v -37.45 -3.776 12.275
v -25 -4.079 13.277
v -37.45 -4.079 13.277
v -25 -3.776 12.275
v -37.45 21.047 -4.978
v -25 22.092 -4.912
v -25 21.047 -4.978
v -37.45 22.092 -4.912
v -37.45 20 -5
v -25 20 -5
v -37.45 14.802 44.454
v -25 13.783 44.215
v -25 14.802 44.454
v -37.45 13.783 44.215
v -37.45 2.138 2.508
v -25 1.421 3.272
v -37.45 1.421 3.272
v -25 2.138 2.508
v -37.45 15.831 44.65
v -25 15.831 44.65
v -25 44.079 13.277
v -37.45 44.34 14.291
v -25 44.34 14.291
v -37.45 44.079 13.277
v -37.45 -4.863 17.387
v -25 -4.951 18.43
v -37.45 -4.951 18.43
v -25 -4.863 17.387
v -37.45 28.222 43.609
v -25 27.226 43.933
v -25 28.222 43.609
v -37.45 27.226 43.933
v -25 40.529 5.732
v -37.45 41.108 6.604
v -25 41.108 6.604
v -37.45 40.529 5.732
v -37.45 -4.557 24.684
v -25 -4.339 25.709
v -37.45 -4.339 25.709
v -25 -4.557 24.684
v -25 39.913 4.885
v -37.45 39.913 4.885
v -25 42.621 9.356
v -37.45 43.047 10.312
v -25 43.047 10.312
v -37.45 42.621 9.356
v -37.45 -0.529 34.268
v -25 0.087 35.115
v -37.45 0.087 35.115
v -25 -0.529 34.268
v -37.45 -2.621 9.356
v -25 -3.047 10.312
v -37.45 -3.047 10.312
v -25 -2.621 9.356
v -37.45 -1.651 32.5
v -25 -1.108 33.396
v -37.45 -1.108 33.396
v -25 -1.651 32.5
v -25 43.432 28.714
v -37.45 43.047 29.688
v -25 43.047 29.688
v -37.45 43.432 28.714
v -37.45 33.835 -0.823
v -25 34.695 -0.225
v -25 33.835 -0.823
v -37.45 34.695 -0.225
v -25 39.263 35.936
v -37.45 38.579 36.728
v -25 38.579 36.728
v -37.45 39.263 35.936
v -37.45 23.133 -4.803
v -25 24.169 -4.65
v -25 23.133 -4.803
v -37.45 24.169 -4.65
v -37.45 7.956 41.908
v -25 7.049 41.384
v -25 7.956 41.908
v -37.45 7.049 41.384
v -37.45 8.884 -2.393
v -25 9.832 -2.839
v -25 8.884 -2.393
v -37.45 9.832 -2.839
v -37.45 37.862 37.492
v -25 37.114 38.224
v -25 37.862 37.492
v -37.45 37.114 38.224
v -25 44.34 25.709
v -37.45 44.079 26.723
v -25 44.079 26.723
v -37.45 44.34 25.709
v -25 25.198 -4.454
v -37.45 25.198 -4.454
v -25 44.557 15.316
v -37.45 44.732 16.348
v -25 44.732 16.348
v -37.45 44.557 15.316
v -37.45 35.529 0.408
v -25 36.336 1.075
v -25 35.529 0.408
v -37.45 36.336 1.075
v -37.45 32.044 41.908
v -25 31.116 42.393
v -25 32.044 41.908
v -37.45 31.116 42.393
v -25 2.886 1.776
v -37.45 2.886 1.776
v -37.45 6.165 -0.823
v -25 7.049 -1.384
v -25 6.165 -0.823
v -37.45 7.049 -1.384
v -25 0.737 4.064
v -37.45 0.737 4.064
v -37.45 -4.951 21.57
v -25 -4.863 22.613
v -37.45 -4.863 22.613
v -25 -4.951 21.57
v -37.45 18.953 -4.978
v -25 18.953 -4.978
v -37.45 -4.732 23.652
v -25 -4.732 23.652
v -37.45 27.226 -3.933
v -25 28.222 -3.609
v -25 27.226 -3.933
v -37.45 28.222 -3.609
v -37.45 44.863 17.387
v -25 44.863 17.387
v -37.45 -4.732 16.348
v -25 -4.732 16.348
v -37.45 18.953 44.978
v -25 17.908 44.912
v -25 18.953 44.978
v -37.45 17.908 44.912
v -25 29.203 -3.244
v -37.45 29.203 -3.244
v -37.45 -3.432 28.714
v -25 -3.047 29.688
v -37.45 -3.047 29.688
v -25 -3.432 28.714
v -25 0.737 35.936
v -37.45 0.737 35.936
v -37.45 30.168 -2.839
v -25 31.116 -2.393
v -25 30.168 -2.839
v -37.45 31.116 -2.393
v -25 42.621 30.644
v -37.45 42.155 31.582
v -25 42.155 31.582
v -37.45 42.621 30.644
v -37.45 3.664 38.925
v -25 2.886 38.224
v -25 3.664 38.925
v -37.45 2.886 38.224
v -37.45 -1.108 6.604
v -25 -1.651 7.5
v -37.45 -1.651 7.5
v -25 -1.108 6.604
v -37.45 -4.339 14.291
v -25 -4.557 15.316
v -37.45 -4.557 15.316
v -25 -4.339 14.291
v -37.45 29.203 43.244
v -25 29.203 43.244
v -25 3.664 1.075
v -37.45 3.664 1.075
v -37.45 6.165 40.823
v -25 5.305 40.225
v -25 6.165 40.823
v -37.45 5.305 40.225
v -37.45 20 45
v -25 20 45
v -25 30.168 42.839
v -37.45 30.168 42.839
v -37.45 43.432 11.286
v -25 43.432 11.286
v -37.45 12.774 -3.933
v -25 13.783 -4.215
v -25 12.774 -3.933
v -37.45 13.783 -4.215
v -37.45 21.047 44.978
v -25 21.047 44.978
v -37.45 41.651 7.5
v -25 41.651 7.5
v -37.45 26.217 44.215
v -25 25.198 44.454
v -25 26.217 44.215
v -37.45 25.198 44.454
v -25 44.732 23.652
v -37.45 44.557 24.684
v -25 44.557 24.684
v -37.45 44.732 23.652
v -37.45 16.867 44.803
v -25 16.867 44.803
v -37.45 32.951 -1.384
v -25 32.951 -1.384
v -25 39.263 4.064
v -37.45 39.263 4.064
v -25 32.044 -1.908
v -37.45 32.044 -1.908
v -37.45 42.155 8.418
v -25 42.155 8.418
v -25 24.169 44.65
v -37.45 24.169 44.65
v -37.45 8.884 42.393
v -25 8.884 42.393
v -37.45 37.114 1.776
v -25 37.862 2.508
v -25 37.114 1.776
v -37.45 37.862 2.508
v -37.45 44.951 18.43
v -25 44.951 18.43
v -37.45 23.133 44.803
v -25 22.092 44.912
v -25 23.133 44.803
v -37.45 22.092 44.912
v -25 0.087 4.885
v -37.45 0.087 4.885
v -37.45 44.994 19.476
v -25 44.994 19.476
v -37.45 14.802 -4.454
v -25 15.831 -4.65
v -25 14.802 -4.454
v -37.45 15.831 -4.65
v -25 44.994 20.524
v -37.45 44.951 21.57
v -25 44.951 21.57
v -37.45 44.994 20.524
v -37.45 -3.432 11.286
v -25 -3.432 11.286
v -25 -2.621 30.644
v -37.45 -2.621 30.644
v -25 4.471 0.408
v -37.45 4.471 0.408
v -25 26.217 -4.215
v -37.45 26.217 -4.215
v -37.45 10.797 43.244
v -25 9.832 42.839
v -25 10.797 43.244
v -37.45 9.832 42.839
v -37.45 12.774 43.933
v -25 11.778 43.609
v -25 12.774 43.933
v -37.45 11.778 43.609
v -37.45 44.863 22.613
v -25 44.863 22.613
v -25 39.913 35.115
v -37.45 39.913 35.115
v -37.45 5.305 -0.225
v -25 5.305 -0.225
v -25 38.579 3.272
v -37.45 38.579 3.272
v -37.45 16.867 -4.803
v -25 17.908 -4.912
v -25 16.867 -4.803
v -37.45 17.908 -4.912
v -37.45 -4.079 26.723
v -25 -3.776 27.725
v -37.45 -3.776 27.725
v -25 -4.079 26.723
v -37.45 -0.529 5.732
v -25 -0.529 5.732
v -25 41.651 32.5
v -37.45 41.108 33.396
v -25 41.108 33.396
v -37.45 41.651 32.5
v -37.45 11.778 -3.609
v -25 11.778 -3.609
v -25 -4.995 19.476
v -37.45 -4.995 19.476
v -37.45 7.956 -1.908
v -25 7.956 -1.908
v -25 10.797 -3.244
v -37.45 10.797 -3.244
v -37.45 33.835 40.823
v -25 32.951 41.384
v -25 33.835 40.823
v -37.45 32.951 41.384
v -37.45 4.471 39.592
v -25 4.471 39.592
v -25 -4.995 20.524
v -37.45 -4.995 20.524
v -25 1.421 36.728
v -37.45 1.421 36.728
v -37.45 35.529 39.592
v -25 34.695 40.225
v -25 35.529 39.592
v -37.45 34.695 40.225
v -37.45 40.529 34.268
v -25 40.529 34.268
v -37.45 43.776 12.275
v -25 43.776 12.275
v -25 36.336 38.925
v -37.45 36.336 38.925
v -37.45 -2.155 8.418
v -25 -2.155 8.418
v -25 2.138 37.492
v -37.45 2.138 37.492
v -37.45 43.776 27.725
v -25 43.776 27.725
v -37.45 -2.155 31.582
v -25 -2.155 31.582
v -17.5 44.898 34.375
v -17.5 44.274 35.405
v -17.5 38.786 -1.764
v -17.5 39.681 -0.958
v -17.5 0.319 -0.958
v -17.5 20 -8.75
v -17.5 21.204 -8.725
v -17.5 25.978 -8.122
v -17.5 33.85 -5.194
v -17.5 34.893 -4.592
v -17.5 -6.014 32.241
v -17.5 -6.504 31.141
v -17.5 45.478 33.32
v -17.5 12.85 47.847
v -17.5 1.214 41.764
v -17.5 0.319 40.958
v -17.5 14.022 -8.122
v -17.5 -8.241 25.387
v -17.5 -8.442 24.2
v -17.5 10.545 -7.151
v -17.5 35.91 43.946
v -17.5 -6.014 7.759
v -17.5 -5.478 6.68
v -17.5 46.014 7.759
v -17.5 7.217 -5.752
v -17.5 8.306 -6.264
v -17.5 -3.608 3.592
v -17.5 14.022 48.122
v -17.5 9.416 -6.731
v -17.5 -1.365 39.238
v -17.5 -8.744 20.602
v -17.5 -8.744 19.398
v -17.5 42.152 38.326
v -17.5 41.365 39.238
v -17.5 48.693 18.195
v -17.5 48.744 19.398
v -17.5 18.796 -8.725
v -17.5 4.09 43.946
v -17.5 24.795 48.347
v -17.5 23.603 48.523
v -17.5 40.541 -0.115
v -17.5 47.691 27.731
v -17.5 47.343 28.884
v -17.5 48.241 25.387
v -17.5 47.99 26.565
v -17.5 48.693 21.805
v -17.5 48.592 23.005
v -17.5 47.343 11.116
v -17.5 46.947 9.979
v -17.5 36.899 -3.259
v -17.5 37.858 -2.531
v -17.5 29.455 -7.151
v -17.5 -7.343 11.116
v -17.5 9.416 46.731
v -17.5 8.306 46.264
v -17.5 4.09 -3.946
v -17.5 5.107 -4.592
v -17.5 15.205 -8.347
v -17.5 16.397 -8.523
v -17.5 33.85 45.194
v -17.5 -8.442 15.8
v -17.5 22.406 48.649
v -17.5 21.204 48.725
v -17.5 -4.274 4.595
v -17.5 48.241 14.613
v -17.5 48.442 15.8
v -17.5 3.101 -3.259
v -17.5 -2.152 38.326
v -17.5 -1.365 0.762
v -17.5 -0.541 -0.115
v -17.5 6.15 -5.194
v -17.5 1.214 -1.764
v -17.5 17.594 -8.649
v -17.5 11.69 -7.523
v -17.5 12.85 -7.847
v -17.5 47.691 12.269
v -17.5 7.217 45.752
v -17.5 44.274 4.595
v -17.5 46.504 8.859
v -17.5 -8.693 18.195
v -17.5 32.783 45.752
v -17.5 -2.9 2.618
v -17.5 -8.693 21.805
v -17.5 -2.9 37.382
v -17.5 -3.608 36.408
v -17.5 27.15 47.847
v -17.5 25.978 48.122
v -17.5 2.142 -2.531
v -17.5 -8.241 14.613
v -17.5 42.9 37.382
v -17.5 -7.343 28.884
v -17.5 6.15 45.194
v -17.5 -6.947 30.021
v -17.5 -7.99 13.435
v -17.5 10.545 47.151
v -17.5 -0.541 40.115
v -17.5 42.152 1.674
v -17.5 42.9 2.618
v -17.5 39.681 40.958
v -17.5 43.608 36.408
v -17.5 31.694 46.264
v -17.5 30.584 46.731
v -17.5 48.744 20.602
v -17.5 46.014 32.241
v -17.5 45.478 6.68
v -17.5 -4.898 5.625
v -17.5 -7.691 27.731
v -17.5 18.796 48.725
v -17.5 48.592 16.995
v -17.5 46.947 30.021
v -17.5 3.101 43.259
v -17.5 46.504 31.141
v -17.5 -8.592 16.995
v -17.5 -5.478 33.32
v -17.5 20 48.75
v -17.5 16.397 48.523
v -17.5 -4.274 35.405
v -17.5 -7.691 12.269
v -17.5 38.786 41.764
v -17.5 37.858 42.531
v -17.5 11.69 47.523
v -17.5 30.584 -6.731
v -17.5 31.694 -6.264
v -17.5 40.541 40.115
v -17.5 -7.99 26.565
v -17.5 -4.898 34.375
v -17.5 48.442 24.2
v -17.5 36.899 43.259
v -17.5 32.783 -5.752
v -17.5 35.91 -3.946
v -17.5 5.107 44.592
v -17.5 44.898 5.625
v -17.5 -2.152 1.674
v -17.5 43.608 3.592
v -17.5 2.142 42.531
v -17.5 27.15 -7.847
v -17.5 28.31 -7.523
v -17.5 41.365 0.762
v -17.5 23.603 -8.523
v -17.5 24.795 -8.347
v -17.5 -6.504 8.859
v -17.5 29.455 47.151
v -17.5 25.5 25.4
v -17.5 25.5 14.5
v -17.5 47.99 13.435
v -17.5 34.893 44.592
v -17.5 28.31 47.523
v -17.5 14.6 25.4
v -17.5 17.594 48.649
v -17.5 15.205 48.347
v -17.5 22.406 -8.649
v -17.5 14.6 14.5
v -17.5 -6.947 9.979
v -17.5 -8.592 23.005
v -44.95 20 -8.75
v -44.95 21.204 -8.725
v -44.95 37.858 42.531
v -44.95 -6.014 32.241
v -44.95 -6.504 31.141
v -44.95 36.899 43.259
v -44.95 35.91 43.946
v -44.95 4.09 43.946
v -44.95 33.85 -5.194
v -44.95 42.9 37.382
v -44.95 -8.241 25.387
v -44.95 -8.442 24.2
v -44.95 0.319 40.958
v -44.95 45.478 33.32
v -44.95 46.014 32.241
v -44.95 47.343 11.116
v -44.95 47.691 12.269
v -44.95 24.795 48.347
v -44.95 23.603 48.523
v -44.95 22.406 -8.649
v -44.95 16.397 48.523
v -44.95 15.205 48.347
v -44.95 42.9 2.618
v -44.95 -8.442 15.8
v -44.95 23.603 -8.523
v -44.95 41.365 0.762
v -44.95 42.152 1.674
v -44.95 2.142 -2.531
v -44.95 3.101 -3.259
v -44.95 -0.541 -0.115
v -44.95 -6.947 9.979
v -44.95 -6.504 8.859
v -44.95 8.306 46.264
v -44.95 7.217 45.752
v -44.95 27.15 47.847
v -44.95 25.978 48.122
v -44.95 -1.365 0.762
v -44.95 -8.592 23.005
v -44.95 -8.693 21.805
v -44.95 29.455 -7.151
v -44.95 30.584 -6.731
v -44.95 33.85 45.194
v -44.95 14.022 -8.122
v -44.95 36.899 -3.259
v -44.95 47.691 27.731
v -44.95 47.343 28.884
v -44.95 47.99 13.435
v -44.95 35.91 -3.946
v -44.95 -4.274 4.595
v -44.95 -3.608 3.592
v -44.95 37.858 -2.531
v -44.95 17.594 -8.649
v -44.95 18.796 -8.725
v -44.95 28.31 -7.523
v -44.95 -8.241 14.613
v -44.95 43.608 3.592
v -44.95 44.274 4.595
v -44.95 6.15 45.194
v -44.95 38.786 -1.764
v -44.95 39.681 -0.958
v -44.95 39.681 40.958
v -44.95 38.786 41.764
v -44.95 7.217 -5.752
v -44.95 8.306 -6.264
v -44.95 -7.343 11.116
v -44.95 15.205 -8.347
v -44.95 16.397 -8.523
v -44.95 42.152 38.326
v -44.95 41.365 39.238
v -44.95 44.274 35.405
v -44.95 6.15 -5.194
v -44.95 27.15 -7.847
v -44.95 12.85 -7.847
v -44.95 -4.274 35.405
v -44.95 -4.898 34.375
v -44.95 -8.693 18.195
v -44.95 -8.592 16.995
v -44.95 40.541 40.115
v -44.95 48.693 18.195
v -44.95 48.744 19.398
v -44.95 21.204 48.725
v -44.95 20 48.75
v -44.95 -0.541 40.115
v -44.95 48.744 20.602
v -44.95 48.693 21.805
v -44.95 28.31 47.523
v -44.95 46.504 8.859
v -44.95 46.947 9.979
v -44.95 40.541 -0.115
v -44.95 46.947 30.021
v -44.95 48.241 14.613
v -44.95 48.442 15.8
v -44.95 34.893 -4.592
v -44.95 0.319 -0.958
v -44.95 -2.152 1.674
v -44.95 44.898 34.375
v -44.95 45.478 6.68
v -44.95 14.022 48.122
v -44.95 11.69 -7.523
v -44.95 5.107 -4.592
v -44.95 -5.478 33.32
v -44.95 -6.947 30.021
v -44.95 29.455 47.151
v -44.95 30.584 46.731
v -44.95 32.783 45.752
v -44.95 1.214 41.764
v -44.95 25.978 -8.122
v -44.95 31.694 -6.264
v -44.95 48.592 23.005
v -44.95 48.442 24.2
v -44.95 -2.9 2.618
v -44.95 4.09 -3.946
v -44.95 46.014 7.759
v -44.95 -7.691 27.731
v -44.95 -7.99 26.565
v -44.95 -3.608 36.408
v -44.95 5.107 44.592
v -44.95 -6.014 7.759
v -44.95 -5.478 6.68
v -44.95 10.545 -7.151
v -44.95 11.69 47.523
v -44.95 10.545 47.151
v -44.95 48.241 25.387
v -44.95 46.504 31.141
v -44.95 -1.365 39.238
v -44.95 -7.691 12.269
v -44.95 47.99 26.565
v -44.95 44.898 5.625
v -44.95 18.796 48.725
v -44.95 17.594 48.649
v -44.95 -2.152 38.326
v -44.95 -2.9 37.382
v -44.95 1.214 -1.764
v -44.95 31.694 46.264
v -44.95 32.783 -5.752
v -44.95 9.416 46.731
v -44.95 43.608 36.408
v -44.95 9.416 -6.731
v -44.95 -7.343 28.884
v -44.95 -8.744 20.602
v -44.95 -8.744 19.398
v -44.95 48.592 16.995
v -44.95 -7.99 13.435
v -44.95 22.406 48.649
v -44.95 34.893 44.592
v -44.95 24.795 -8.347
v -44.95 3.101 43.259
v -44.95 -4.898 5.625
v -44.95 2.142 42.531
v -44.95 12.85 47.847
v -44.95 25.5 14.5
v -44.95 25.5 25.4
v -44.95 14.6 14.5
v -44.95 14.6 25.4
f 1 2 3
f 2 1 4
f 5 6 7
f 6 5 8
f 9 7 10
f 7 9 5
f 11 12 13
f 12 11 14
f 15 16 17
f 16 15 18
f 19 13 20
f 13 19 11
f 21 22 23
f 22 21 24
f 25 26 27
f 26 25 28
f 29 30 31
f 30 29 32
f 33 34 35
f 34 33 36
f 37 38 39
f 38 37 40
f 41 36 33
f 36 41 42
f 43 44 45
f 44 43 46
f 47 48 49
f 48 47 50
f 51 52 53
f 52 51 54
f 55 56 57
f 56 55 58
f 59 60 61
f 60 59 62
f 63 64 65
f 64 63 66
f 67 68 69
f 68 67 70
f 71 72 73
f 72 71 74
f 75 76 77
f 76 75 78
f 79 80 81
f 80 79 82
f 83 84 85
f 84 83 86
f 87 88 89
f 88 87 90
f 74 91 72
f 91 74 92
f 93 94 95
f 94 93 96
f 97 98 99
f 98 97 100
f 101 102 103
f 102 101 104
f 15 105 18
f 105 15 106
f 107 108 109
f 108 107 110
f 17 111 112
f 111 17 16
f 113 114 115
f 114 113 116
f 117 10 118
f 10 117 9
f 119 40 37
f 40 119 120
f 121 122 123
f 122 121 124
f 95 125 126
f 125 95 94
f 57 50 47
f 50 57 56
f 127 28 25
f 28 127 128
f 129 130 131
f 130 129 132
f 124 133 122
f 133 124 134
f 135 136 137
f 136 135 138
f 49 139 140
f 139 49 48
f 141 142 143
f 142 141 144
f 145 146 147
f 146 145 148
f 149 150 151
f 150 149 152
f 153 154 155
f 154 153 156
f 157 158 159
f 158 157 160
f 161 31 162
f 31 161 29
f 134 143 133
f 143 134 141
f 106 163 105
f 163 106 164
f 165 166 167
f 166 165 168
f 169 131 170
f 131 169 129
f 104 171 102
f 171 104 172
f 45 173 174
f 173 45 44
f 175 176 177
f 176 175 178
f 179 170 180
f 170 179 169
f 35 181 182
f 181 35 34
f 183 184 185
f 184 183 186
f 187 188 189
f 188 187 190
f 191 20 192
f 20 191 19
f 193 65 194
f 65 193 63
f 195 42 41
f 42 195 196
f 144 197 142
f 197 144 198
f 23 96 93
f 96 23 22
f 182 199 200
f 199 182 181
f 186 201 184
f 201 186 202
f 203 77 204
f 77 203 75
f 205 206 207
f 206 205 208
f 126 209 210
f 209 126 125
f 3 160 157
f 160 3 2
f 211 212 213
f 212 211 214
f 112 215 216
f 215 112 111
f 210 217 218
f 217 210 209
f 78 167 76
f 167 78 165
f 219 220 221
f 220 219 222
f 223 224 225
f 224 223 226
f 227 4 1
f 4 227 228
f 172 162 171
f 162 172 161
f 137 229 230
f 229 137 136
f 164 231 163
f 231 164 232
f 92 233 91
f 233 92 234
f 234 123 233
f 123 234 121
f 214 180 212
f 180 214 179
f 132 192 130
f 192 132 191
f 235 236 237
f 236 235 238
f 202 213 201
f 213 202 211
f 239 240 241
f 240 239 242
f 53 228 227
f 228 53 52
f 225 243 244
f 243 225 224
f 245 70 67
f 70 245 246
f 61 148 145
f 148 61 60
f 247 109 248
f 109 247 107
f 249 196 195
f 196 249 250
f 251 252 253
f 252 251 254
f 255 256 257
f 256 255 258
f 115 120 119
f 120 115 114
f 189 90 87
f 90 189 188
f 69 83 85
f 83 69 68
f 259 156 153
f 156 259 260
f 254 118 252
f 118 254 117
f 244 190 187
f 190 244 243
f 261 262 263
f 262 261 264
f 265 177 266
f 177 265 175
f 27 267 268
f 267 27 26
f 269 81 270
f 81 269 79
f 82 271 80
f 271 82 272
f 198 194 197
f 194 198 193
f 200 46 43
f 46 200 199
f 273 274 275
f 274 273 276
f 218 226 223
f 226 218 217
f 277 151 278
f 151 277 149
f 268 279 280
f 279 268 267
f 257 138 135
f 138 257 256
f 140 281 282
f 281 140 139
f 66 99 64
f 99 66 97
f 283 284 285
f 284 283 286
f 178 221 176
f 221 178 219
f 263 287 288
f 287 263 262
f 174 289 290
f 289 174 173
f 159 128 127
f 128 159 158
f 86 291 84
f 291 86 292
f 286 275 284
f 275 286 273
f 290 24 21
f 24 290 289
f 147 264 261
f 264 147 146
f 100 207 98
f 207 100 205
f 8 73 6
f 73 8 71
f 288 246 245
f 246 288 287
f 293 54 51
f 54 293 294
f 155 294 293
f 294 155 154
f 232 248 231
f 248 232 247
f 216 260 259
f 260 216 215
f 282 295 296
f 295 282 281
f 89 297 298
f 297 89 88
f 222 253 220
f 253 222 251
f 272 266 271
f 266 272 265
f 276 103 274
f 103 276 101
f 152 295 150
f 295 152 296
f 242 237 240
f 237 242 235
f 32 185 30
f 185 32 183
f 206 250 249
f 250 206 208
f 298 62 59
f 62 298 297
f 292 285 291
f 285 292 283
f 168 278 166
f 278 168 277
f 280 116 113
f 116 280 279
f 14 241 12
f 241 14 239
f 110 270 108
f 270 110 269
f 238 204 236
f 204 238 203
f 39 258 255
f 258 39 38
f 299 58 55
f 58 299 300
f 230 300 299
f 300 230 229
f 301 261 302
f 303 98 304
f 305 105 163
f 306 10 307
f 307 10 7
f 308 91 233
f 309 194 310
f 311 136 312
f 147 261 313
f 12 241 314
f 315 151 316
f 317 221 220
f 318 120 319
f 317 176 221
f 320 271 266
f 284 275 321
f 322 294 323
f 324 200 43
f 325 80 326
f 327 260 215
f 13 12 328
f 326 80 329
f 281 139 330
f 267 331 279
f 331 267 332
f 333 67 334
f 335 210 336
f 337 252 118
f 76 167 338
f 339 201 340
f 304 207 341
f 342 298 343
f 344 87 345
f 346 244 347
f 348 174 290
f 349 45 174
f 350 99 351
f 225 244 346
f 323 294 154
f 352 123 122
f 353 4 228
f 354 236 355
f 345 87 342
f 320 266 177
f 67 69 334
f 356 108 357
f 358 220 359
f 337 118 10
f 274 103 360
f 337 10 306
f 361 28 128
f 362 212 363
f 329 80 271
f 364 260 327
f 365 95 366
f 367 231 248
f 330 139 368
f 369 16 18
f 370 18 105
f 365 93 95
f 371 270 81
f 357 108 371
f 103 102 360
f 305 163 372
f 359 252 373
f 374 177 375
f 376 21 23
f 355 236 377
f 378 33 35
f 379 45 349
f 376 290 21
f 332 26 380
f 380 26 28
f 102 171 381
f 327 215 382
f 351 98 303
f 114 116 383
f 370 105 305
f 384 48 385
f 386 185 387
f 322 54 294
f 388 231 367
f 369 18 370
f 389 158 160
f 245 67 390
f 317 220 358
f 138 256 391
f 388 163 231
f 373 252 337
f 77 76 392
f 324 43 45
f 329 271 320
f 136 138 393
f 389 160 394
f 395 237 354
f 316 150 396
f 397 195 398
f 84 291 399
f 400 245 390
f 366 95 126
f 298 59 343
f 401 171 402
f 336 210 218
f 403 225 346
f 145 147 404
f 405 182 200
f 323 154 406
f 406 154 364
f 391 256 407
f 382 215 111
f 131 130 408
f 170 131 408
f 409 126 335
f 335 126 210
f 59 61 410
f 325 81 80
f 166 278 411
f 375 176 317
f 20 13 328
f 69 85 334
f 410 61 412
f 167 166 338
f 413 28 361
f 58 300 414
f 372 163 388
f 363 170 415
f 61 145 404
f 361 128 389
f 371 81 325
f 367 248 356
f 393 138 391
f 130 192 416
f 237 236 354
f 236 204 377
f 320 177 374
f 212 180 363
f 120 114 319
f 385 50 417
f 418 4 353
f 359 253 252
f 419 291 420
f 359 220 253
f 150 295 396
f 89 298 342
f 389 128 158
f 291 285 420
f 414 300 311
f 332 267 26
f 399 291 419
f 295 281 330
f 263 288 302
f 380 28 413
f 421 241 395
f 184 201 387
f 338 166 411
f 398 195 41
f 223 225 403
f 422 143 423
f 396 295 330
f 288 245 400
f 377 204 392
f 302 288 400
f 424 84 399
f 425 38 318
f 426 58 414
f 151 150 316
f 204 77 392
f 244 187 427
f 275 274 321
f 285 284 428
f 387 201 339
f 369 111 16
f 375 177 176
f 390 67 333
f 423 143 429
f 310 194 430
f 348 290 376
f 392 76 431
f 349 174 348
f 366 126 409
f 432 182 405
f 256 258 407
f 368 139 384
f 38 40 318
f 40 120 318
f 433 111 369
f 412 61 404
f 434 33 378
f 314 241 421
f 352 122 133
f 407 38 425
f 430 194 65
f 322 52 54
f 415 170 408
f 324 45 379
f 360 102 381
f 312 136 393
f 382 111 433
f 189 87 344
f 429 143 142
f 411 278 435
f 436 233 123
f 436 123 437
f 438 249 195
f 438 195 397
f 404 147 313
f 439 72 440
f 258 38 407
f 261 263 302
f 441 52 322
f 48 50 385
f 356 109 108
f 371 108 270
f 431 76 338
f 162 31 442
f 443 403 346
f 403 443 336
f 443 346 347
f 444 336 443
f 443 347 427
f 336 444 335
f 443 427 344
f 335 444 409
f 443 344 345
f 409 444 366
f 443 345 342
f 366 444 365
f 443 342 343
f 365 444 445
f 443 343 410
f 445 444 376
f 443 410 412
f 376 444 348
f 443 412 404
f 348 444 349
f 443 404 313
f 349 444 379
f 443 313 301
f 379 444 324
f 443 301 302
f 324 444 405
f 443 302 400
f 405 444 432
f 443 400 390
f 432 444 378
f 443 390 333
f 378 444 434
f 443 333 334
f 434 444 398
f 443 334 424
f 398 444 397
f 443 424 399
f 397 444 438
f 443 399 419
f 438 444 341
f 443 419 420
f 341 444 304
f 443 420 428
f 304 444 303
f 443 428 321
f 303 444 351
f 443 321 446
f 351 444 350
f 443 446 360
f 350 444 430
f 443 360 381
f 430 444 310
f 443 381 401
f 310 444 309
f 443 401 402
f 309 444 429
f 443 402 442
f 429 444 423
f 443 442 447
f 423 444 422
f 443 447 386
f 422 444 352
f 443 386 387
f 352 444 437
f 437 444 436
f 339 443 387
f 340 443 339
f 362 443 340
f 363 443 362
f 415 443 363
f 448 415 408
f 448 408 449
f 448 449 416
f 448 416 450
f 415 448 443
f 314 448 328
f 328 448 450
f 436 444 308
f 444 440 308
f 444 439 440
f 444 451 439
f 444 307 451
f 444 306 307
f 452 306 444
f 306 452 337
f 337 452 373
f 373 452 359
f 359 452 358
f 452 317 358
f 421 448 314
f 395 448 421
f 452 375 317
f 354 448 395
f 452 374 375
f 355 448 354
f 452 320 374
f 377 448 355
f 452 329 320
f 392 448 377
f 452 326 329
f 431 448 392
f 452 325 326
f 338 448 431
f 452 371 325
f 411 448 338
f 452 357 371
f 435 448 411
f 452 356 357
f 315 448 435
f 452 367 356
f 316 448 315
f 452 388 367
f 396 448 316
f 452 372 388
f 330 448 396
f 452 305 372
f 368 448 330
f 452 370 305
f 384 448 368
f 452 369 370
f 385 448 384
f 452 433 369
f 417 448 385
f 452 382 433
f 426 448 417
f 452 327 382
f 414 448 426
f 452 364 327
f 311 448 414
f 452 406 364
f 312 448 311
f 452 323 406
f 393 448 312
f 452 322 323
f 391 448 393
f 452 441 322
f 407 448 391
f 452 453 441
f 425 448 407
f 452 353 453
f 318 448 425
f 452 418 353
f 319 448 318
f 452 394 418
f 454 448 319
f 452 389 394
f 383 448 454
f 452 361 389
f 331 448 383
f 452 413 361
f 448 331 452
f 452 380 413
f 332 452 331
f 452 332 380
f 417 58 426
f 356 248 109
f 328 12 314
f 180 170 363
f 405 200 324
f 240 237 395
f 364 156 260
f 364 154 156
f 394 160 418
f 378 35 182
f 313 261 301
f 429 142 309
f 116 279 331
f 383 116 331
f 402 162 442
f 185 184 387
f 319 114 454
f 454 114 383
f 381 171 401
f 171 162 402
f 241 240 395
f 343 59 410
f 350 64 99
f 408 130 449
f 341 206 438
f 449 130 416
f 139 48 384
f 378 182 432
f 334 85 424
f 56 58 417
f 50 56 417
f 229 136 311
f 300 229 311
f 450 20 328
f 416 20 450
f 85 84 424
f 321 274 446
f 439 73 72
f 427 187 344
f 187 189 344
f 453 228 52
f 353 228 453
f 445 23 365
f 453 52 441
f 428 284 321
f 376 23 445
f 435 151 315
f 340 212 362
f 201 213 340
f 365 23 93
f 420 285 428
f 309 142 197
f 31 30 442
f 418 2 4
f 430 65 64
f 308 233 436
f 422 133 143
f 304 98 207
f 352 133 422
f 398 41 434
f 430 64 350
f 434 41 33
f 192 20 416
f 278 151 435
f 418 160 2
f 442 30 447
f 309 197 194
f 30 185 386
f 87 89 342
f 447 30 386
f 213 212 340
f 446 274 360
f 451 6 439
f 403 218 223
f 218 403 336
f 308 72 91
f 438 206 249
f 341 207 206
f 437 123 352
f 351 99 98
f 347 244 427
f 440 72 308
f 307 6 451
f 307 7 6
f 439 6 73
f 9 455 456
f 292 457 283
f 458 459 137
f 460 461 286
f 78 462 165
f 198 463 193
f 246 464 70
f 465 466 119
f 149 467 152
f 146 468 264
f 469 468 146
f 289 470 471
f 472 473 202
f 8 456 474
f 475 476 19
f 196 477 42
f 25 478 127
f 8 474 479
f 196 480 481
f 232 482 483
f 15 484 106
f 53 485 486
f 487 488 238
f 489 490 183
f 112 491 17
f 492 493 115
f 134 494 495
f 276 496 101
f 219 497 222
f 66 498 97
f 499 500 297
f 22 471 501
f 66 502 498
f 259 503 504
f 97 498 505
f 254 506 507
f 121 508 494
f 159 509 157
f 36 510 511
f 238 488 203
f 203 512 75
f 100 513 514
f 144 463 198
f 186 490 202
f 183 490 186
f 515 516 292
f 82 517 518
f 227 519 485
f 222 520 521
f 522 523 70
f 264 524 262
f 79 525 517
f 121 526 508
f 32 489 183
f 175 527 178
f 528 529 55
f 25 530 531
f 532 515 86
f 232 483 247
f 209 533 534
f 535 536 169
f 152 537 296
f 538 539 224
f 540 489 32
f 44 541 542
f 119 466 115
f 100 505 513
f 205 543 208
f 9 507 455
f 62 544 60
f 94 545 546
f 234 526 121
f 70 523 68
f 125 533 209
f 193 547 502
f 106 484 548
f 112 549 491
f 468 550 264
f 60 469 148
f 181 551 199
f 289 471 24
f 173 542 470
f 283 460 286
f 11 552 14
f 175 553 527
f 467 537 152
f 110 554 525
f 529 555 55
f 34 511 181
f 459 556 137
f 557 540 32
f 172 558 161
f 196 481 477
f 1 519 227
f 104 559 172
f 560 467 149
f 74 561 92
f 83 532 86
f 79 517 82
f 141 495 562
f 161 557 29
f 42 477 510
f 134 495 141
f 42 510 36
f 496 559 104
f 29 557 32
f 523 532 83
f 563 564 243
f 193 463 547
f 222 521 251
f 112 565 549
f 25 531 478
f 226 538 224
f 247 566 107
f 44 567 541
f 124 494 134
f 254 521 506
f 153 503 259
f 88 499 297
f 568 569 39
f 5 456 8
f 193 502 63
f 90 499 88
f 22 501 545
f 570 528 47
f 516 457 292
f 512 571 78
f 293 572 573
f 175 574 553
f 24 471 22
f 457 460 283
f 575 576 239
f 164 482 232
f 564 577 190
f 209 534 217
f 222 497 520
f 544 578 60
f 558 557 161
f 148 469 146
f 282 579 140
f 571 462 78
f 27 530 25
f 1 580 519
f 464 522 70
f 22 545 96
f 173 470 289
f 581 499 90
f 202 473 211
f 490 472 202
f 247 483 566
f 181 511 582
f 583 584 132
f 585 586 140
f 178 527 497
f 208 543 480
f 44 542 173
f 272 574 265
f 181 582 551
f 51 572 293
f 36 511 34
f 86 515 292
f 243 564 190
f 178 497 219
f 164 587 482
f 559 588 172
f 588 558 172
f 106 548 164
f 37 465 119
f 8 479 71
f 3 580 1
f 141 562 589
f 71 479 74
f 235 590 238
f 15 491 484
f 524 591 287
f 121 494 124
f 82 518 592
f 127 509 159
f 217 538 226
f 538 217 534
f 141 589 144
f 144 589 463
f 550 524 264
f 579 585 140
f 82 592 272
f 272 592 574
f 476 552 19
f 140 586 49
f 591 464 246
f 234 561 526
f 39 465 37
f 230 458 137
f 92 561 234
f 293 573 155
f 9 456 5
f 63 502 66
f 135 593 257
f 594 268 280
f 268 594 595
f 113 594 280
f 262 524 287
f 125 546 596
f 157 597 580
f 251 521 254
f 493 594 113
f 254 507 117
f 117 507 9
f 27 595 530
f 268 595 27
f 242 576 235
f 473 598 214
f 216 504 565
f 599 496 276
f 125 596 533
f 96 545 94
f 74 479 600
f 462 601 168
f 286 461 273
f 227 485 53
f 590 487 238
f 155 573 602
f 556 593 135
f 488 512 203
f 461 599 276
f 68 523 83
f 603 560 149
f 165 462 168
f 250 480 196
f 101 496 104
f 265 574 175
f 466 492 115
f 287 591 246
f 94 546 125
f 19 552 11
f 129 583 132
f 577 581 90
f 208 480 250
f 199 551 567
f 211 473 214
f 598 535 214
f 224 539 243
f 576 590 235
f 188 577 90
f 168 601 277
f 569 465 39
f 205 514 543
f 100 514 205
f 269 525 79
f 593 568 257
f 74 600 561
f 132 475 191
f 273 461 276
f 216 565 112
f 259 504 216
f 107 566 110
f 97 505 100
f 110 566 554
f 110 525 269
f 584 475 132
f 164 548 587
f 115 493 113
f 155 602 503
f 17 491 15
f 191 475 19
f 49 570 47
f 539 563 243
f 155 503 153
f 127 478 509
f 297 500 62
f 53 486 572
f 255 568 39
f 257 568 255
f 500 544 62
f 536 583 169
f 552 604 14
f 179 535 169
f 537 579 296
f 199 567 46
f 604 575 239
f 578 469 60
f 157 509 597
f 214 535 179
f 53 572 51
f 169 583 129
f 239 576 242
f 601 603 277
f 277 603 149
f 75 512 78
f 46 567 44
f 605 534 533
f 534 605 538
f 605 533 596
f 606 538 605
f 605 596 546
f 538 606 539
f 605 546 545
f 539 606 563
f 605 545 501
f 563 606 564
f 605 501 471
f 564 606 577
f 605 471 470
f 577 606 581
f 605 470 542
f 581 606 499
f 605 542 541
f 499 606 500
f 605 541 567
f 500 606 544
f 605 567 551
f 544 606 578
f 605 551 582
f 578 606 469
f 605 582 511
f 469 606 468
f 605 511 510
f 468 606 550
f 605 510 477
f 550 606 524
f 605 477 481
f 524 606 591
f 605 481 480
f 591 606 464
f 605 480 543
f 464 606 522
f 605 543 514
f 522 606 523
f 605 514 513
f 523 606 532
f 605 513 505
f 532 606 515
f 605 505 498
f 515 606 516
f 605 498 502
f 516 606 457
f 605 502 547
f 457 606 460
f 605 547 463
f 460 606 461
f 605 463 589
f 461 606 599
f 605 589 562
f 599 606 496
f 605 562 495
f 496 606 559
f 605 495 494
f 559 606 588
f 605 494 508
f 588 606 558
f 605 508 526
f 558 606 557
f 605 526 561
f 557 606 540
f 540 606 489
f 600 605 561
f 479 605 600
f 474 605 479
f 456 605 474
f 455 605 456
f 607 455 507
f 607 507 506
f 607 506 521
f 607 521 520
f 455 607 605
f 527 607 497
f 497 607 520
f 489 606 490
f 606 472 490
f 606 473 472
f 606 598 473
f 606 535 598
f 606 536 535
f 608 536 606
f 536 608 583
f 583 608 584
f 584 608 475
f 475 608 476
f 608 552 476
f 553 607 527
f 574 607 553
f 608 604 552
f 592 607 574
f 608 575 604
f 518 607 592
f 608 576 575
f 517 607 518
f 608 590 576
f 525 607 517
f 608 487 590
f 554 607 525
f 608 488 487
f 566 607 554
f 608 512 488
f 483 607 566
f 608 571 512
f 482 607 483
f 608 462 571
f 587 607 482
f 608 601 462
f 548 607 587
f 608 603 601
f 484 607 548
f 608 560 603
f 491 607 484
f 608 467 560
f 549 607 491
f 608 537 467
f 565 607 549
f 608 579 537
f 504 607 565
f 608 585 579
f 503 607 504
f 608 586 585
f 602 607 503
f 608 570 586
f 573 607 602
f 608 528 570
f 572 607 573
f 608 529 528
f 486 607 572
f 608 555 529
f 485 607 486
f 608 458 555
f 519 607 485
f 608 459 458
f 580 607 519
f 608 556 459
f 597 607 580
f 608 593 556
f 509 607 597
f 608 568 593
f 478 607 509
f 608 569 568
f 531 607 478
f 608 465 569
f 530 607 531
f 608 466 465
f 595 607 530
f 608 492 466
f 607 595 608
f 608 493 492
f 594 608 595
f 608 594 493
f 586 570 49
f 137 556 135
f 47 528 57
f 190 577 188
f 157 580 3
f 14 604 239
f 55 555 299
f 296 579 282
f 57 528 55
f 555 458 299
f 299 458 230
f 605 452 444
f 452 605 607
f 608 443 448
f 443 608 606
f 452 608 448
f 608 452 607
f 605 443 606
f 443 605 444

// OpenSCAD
$fn=150;

// ROLLER MODULE 
module disk(h, d){
cylinder(h, d, d);
translate([0, 0, h])
cylinder(.5 * h, d, d * 1.15);
translate([0, 0, -.33 * h])
cylinder(.5 * h, d * 1.15, d);    
}

// ROLLER  WHEEL 
translate([-40, 20, 20])

difference(){
    rotate([0,90,0])
    // WHEEL 
    disk(15, 25);

    rotate([0,90,0])
    translate([-5.4, -5.4, -10])
    cube([10.9, 10.9, 125]);
}
// END ROLLER WHEEL 
